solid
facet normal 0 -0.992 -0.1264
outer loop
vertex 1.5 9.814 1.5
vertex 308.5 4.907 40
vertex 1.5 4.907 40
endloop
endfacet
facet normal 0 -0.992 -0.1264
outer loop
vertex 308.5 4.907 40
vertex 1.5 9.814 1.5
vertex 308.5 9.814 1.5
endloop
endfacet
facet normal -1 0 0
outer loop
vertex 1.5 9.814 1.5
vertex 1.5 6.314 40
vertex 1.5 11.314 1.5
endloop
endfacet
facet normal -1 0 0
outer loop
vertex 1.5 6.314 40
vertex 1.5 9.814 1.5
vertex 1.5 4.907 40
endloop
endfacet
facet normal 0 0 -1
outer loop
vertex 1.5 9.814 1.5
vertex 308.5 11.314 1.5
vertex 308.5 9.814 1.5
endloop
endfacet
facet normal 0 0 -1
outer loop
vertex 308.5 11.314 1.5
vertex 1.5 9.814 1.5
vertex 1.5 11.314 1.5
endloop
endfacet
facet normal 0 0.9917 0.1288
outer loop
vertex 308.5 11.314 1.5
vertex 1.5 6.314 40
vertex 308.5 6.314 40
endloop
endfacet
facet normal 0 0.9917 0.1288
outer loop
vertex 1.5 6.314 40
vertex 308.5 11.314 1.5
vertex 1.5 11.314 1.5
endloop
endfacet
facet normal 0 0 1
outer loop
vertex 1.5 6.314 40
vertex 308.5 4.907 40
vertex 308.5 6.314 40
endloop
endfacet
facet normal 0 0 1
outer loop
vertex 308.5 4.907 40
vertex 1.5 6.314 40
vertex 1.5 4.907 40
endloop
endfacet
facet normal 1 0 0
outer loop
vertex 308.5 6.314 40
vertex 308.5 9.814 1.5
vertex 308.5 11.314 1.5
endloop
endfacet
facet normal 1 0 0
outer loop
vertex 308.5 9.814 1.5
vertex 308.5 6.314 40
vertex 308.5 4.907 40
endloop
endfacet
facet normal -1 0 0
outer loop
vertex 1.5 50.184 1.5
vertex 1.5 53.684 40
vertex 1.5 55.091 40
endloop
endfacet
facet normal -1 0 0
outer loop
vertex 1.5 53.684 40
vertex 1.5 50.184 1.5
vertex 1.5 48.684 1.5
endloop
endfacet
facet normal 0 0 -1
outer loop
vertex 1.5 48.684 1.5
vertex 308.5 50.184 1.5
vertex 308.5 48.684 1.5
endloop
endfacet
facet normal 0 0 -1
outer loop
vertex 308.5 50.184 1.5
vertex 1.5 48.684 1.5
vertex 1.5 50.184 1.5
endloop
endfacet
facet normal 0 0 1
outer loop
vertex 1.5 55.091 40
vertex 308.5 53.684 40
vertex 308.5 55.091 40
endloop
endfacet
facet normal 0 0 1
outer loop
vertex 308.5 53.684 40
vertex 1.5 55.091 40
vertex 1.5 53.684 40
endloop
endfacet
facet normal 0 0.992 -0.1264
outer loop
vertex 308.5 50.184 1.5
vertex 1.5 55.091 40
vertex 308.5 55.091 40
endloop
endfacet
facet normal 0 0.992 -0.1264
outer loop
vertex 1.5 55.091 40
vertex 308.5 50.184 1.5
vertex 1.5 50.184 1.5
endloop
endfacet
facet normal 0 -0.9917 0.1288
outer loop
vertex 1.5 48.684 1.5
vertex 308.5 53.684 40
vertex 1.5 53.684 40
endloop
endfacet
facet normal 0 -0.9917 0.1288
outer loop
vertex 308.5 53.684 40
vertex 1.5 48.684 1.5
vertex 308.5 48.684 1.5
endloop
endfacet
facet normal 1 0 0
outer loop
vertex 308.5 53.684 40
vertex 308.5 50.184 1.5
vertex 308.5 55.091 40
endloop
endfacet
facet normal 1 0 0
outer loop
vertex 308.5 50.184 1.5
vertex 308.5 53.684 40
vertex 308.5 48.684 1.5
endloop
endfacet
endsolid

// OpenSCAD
// file: variables.scad
$fn = 50;
//chambres

//globol

decal = 5; //decalage global chambres
lg = 310; //longueur totale
lag = 60; //largeur totae
ep = 1.5; //epaisseur plak
etv = 19; // ecart vert touches
eth = 14; //ecrat hor touches
nb = 15; //nombre de touches

//plaque dessus

hpd = 40; //hauteur plaque dessus
dth = 8; //diametre des trous pl haut
dtb = 6; //diametre des trous pl bas

//include <plaque_dessus.scad>

//tubes 

dtige=4; //diametre tige bouton
dtub = 6; //dimatre tube 
drtub = 8; //diametre tube ressort
hrtub = 10; //hauteur ressort tube
hbtub = 14; //hauteur du bas du tube

//include <tubes.scad>

//chambre

htc=10;//hauteur chambres
epa = 2; //epaisseur ailettes
epc=3; //grosse epaisseur chmbre

long0=etv-drtub;
long00=etv-drtub-ep*2;
long000=etv+etv/2;
long1=lag/2-drtub/2-epc-epc/2;
long2=lag/2+epc/2+drtub/2;

longb = 10; //largueur basse ailette
longh = 5; //largeur haute ailette

lab = lag-longb*2;


//plaque dessus ici a cause des variables des chambres


//tigettes

epe = 6; //epaisseur escalier
escalier = 3; //ecart de hauteur des touches
htig = hpd+epe;
etouch = 3; //epaisseur touche    
diat = 15; // diametre de la touche
//coté droit



echo();
echo();
echo();
echo();
echo("***********************");
echo("long000 aka inter cloisons = ", long000);
echo("long0 fond des cloisons = ", long0);
echo("long1 base ailette centrale = ", long1);
echo("long2 base ailette grande = ", long2);




echo("*********************** ");
echo();
echo();


hypo = sqrt((longb-longh)^2 + hpd^2);
echo("hypo" ,hypo);
cosin = hpd/hypo;
echo("cos alpha",cosin);
angle = acos(cosin);
echo("angle",angle);



//reservoir d'air


htr = 8;



//plaques ltérales

hhtt=37; //hauteur première plaque

//include <plaques_laterales.scad>

//plaques internes

//plaque intermediaire ou bout de bois


hauteur = hpd-hrtub;
echo("hauteur" , hauteur);
hypopo = 1 / (cos(angle) / hauteur);
hypopopo = 1 / (cos(angle) / hpd);
echo("hypopo", hypopo);
coop = sin(angle) * hypopo;
echo("coop", coop);

//plaques laterale interne
// main file
include <variables.scad>



//plaque droite



color("Gainsboro",0.8){
translate([lg-ep,longb,0])
rotate([0,-90,0])
linear_extrude(lg-ep*2, center = false, convexity=10,twist=0)
plateral();

// plaque gauche

mirror([0,1,0])
translate([lg-ep,-lab-2*coop-2*ep-2.7*cos(90+angle)*ep,0])
rotate([0,-90,0])
linear_extrude(lg-ep*2, center = false, convexity=10,twist=0)
plateral();

}

module plateral(){
    
    polygon([[ep,-cos(90-angle)*ep],[hpd,-longh-cos(90-angle)*ep/2],[hpd-ep+ep,ep-longh-cos(90-angle)*ep],[ep,ep-cos(90-angle)*ep]]);
    
}
